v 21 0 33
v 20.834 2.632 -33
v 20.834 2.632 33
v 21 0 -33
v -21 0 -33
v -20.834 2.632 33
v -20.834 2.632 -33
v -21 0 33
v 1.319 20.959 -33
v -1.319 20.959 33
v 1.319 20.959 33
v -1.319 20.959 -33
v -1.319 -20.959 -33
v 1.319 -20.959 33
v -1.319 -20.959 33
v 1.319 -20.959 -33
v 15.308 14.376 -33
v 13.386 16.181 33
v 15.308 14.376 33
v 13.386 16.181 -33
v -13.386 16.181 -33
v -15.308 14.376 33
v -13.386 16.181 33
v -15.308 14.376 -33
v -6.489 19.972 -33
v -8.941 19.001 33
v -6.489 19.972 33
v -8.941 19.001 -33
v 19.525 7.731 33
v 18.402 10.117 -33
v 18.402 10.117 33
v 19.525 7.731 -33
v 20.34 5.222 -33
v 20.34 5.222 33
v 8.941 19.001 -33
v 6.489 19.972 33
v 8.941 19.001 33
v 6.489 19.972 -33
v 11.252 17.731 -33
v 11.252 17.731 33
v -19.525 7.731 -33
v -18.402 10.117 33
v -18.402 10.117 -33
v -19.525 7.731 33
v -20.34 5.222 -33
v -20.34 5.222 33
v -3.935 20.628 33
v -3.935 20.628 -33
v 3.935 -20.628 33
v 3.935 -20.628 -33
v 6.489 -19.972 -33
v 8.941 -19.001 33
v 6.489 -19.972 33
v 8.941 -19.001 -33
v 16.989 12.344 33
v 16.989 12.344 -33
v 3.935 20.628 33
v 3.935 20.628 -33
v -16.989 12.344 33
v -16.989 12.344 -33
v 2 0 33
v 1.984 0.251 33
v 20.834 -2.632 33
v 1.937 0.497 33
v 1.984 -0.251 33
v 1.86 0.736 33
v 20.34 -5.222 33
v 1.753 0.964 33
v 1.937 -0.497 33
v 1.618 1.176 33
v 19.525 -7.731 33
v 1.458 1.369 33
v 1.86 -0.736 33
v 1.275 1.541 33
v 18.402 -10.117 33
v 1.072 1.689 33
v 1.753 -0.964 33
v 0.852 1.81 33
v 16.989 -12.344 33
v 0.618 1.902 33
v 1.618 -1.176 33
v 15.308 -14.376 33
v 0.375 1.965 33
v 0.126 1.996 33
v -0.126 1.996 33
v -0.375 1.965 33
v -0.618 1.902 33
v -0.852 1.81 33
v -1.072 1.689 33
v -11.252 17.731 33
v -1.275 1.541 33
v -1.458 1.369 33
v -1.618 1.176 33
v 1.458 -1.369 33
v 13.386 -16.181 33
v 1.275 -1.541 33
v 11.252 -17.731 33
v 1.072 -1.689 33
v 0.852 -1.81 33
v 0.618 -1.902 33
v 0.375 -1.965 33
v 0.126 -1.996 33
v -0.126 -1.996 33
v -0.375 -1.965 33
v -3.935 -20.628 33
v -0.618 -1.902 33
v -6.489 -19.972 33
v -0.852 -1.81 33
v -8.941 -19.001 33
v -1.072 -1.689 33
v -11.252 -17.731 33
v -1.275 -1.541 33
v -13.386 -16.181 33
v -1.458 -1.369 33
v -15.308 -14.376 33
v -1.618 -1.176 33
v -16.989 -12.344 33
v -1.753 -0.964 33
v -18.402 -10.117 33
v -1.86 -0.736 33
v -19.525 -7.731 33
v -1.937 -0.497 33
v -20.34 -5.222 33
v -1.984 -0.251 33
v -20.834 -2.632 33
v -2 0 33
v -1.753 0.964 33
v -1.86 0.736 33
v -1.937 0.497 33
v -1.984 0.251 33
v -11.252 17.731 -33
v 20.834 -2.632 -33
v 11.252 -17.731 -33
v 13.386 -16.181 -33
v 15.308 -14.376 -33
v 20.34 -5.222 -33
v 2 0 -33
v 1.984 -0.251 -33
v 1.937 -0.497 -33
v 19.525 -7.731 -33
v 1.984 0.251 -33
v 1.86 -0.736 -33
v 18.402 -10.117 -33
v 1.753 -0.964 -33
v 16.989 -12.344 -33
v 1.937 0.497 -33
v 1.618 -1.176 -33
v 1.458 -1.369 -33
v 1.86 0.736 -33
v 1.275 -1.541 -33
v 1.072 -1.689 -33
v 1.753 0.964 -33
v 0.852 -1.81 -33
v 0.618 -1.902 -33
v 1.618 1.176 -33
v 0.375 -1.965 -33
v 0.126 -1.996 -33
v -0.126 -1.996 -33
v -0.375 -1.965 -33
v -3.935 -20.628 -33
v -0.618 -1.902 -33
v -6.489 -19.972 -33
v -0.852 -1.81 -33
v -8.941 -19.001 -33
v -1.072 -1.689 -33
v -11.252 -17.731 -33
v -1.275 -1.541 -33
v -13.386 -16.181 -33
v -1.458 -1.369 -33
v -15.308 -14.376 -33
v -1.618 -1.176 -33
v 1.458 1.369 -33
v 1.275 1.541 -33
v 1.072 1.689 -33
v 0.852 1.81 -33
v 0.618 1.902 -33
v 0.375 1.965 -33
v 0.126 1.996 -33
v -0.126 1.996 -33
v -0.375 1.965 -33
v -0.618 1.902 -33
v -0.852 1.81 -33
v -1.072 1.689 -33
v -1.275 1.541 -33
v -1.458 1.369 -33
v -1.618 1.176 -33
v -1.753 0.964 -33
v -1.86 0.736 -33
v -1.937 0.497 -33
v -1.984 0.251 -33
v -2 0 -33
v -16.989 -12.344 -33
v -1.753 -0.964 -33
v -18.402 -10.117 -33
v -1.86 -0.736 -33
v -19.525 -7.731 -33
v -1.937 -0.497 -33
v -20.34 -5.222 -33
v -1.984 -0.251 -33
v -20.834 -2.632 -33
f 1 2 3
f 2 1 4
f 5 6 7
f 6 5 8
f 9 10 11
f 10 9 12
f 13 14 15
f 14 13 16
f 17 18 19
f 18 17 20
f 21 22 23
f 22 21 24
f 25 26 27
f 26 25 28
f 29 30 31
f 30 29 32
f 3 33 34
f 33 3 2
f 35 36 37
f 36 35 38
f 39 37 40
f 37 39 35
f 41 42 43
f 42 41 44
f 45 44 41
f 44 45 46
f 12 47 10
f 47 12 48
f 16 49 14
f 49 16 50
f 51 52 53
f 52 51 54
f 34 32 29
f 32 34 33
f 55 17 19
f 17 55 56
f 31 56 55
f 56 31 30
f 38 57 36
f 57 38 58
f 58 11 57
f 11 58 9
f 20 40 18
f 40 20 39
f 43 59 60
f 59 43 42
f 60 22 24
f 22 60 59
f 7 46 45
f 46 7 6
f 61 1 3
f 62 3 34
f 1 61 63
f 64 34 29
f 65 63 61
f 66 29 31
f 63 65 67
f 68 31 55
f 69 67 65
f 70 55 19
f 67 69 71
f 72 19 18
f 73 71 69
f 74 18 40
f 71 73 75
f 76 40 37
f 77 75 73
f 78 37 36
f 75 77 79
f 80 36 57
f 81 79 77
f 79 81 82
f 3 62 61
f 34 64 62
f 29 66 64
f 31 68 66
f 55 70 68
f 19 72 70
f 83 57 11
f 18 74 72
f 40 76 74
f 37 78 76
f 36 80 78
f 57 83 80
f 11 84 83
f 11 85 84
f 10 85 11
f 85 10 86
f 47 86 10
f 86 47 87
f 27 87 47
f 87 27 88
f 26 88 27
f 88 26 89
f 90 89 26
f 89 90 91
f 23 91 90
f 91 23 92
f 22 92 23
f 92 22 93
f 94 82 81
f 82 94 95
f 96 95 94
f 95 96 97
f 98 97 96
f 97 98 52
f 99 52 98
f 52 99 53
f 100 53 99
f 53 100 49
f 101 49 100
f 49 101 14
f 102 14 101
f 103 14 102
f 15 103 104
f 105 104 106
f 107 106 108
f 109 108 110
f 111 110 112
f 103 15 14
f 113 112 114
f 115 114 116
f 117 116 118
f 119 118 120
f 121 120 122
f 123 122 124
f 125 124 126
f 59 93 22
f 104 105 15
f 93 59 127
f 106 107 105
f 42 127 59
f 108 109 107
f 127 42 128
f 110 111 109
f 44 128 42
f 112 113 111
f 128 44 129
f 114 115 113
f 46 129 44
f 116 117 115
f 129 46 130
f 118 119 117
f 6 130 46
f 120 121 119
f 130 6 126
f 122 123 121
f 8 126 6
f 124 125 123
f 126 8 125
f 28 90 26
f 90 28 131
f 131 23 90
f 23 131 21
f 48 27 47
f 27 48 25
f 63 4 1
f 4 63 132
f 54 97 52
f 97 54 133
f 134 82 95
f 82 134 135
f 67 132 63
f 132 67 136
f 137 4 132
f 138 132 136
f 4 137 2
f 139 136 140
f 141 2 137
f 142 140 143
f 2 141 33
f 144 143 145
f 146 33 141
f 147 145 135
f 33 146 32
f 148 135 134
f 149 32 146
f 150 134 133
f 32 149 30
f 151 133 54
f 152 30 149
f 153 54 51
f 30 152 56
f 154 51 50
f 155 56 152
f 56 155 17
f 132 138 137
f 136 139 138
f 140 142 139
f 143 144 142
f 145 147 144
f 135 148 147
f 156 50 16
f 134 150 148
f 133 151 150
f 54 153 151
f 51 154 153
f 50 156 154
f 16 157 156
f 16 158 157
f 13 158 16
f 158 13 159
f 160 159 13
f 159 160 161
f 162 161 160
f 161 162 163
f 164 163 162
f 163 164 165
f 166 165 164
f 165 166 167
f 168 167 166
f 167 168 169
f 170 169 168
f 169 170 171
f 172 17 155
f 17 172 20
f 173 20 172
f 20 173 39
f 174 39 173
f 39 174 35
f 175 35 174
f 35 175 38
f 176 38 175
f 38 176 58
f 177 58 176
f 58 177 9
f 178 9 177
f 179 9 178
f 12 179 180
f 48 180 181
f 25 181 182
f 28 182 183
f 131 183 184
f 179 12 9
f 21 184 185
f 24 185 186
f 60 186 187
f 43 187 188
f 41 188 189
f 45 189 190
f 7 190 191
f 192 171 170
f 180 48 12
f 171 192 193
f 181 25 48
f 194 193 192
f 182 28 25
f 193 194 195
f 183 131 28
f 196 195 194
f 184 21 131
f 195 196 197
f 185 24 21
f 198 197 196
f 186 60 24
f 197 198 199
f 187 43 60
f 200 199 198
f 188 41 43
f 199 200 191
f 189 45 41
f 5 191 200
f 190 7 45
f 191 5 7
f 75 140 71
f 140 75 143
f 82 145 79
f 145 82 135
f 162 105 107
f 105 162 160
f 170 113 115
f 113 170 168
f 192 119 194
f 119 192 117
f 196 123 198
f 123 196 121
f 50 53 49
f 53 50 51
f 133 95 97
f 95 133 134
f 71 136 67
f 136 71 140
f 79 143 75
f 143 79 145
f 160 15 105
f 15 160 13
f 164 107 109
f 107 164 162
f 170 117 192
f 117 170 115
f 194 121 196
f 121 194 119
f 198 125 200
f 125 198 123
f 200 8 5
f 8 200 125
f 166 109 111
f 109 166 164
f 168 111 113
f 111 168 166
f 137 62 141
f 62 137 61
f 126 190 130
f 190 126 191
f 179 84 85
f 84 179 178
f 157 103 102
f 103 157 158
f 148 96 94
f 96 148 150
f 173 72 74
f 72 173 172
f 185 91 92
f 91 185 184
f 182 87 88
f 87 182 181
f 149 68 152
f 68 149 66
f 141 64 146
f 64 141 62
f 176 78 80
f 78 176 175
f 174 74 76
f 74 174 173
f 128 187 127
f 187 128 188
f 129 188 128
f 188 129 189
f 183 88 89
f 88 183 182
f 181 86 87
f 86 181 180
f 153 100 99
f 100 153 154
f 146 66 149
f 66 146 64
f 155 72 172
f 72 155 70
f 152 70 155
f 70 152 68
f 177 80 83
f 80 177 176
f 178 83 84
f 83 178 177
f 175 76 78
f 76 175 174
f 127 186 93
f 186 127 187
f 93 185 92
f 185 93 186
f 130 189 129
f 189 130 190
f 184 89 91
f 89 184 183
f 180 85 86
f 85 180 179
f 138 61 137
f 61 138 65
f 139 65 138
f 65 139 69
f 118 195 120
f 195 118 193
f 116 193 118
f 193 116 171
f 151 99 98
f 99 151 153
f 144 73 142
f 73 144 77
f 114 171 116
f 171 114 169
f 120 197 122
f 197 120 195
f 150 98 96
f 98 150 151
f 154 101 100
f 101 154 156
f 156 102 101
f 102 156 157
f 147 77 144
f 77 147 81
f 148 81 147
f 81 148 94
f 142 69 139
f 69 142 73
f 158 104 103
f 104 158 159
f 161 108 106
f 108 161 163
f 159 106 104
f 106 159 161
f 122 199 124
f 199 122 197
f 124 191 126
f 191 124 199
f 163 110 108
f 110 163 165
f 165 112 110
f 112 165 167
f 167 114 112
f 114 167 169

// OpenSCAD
$fn = 50;


difference() {
	union() {
		translate(v = [0, 0, -33.0000000000]) {
			cylinder(h = 66, r = 21.0000000000);
		}
	}
	union() {
		translate(v = [0, 0, -100.0000000000]) {
			cylinder(h = 200, r = 2);
		}
	}
}
